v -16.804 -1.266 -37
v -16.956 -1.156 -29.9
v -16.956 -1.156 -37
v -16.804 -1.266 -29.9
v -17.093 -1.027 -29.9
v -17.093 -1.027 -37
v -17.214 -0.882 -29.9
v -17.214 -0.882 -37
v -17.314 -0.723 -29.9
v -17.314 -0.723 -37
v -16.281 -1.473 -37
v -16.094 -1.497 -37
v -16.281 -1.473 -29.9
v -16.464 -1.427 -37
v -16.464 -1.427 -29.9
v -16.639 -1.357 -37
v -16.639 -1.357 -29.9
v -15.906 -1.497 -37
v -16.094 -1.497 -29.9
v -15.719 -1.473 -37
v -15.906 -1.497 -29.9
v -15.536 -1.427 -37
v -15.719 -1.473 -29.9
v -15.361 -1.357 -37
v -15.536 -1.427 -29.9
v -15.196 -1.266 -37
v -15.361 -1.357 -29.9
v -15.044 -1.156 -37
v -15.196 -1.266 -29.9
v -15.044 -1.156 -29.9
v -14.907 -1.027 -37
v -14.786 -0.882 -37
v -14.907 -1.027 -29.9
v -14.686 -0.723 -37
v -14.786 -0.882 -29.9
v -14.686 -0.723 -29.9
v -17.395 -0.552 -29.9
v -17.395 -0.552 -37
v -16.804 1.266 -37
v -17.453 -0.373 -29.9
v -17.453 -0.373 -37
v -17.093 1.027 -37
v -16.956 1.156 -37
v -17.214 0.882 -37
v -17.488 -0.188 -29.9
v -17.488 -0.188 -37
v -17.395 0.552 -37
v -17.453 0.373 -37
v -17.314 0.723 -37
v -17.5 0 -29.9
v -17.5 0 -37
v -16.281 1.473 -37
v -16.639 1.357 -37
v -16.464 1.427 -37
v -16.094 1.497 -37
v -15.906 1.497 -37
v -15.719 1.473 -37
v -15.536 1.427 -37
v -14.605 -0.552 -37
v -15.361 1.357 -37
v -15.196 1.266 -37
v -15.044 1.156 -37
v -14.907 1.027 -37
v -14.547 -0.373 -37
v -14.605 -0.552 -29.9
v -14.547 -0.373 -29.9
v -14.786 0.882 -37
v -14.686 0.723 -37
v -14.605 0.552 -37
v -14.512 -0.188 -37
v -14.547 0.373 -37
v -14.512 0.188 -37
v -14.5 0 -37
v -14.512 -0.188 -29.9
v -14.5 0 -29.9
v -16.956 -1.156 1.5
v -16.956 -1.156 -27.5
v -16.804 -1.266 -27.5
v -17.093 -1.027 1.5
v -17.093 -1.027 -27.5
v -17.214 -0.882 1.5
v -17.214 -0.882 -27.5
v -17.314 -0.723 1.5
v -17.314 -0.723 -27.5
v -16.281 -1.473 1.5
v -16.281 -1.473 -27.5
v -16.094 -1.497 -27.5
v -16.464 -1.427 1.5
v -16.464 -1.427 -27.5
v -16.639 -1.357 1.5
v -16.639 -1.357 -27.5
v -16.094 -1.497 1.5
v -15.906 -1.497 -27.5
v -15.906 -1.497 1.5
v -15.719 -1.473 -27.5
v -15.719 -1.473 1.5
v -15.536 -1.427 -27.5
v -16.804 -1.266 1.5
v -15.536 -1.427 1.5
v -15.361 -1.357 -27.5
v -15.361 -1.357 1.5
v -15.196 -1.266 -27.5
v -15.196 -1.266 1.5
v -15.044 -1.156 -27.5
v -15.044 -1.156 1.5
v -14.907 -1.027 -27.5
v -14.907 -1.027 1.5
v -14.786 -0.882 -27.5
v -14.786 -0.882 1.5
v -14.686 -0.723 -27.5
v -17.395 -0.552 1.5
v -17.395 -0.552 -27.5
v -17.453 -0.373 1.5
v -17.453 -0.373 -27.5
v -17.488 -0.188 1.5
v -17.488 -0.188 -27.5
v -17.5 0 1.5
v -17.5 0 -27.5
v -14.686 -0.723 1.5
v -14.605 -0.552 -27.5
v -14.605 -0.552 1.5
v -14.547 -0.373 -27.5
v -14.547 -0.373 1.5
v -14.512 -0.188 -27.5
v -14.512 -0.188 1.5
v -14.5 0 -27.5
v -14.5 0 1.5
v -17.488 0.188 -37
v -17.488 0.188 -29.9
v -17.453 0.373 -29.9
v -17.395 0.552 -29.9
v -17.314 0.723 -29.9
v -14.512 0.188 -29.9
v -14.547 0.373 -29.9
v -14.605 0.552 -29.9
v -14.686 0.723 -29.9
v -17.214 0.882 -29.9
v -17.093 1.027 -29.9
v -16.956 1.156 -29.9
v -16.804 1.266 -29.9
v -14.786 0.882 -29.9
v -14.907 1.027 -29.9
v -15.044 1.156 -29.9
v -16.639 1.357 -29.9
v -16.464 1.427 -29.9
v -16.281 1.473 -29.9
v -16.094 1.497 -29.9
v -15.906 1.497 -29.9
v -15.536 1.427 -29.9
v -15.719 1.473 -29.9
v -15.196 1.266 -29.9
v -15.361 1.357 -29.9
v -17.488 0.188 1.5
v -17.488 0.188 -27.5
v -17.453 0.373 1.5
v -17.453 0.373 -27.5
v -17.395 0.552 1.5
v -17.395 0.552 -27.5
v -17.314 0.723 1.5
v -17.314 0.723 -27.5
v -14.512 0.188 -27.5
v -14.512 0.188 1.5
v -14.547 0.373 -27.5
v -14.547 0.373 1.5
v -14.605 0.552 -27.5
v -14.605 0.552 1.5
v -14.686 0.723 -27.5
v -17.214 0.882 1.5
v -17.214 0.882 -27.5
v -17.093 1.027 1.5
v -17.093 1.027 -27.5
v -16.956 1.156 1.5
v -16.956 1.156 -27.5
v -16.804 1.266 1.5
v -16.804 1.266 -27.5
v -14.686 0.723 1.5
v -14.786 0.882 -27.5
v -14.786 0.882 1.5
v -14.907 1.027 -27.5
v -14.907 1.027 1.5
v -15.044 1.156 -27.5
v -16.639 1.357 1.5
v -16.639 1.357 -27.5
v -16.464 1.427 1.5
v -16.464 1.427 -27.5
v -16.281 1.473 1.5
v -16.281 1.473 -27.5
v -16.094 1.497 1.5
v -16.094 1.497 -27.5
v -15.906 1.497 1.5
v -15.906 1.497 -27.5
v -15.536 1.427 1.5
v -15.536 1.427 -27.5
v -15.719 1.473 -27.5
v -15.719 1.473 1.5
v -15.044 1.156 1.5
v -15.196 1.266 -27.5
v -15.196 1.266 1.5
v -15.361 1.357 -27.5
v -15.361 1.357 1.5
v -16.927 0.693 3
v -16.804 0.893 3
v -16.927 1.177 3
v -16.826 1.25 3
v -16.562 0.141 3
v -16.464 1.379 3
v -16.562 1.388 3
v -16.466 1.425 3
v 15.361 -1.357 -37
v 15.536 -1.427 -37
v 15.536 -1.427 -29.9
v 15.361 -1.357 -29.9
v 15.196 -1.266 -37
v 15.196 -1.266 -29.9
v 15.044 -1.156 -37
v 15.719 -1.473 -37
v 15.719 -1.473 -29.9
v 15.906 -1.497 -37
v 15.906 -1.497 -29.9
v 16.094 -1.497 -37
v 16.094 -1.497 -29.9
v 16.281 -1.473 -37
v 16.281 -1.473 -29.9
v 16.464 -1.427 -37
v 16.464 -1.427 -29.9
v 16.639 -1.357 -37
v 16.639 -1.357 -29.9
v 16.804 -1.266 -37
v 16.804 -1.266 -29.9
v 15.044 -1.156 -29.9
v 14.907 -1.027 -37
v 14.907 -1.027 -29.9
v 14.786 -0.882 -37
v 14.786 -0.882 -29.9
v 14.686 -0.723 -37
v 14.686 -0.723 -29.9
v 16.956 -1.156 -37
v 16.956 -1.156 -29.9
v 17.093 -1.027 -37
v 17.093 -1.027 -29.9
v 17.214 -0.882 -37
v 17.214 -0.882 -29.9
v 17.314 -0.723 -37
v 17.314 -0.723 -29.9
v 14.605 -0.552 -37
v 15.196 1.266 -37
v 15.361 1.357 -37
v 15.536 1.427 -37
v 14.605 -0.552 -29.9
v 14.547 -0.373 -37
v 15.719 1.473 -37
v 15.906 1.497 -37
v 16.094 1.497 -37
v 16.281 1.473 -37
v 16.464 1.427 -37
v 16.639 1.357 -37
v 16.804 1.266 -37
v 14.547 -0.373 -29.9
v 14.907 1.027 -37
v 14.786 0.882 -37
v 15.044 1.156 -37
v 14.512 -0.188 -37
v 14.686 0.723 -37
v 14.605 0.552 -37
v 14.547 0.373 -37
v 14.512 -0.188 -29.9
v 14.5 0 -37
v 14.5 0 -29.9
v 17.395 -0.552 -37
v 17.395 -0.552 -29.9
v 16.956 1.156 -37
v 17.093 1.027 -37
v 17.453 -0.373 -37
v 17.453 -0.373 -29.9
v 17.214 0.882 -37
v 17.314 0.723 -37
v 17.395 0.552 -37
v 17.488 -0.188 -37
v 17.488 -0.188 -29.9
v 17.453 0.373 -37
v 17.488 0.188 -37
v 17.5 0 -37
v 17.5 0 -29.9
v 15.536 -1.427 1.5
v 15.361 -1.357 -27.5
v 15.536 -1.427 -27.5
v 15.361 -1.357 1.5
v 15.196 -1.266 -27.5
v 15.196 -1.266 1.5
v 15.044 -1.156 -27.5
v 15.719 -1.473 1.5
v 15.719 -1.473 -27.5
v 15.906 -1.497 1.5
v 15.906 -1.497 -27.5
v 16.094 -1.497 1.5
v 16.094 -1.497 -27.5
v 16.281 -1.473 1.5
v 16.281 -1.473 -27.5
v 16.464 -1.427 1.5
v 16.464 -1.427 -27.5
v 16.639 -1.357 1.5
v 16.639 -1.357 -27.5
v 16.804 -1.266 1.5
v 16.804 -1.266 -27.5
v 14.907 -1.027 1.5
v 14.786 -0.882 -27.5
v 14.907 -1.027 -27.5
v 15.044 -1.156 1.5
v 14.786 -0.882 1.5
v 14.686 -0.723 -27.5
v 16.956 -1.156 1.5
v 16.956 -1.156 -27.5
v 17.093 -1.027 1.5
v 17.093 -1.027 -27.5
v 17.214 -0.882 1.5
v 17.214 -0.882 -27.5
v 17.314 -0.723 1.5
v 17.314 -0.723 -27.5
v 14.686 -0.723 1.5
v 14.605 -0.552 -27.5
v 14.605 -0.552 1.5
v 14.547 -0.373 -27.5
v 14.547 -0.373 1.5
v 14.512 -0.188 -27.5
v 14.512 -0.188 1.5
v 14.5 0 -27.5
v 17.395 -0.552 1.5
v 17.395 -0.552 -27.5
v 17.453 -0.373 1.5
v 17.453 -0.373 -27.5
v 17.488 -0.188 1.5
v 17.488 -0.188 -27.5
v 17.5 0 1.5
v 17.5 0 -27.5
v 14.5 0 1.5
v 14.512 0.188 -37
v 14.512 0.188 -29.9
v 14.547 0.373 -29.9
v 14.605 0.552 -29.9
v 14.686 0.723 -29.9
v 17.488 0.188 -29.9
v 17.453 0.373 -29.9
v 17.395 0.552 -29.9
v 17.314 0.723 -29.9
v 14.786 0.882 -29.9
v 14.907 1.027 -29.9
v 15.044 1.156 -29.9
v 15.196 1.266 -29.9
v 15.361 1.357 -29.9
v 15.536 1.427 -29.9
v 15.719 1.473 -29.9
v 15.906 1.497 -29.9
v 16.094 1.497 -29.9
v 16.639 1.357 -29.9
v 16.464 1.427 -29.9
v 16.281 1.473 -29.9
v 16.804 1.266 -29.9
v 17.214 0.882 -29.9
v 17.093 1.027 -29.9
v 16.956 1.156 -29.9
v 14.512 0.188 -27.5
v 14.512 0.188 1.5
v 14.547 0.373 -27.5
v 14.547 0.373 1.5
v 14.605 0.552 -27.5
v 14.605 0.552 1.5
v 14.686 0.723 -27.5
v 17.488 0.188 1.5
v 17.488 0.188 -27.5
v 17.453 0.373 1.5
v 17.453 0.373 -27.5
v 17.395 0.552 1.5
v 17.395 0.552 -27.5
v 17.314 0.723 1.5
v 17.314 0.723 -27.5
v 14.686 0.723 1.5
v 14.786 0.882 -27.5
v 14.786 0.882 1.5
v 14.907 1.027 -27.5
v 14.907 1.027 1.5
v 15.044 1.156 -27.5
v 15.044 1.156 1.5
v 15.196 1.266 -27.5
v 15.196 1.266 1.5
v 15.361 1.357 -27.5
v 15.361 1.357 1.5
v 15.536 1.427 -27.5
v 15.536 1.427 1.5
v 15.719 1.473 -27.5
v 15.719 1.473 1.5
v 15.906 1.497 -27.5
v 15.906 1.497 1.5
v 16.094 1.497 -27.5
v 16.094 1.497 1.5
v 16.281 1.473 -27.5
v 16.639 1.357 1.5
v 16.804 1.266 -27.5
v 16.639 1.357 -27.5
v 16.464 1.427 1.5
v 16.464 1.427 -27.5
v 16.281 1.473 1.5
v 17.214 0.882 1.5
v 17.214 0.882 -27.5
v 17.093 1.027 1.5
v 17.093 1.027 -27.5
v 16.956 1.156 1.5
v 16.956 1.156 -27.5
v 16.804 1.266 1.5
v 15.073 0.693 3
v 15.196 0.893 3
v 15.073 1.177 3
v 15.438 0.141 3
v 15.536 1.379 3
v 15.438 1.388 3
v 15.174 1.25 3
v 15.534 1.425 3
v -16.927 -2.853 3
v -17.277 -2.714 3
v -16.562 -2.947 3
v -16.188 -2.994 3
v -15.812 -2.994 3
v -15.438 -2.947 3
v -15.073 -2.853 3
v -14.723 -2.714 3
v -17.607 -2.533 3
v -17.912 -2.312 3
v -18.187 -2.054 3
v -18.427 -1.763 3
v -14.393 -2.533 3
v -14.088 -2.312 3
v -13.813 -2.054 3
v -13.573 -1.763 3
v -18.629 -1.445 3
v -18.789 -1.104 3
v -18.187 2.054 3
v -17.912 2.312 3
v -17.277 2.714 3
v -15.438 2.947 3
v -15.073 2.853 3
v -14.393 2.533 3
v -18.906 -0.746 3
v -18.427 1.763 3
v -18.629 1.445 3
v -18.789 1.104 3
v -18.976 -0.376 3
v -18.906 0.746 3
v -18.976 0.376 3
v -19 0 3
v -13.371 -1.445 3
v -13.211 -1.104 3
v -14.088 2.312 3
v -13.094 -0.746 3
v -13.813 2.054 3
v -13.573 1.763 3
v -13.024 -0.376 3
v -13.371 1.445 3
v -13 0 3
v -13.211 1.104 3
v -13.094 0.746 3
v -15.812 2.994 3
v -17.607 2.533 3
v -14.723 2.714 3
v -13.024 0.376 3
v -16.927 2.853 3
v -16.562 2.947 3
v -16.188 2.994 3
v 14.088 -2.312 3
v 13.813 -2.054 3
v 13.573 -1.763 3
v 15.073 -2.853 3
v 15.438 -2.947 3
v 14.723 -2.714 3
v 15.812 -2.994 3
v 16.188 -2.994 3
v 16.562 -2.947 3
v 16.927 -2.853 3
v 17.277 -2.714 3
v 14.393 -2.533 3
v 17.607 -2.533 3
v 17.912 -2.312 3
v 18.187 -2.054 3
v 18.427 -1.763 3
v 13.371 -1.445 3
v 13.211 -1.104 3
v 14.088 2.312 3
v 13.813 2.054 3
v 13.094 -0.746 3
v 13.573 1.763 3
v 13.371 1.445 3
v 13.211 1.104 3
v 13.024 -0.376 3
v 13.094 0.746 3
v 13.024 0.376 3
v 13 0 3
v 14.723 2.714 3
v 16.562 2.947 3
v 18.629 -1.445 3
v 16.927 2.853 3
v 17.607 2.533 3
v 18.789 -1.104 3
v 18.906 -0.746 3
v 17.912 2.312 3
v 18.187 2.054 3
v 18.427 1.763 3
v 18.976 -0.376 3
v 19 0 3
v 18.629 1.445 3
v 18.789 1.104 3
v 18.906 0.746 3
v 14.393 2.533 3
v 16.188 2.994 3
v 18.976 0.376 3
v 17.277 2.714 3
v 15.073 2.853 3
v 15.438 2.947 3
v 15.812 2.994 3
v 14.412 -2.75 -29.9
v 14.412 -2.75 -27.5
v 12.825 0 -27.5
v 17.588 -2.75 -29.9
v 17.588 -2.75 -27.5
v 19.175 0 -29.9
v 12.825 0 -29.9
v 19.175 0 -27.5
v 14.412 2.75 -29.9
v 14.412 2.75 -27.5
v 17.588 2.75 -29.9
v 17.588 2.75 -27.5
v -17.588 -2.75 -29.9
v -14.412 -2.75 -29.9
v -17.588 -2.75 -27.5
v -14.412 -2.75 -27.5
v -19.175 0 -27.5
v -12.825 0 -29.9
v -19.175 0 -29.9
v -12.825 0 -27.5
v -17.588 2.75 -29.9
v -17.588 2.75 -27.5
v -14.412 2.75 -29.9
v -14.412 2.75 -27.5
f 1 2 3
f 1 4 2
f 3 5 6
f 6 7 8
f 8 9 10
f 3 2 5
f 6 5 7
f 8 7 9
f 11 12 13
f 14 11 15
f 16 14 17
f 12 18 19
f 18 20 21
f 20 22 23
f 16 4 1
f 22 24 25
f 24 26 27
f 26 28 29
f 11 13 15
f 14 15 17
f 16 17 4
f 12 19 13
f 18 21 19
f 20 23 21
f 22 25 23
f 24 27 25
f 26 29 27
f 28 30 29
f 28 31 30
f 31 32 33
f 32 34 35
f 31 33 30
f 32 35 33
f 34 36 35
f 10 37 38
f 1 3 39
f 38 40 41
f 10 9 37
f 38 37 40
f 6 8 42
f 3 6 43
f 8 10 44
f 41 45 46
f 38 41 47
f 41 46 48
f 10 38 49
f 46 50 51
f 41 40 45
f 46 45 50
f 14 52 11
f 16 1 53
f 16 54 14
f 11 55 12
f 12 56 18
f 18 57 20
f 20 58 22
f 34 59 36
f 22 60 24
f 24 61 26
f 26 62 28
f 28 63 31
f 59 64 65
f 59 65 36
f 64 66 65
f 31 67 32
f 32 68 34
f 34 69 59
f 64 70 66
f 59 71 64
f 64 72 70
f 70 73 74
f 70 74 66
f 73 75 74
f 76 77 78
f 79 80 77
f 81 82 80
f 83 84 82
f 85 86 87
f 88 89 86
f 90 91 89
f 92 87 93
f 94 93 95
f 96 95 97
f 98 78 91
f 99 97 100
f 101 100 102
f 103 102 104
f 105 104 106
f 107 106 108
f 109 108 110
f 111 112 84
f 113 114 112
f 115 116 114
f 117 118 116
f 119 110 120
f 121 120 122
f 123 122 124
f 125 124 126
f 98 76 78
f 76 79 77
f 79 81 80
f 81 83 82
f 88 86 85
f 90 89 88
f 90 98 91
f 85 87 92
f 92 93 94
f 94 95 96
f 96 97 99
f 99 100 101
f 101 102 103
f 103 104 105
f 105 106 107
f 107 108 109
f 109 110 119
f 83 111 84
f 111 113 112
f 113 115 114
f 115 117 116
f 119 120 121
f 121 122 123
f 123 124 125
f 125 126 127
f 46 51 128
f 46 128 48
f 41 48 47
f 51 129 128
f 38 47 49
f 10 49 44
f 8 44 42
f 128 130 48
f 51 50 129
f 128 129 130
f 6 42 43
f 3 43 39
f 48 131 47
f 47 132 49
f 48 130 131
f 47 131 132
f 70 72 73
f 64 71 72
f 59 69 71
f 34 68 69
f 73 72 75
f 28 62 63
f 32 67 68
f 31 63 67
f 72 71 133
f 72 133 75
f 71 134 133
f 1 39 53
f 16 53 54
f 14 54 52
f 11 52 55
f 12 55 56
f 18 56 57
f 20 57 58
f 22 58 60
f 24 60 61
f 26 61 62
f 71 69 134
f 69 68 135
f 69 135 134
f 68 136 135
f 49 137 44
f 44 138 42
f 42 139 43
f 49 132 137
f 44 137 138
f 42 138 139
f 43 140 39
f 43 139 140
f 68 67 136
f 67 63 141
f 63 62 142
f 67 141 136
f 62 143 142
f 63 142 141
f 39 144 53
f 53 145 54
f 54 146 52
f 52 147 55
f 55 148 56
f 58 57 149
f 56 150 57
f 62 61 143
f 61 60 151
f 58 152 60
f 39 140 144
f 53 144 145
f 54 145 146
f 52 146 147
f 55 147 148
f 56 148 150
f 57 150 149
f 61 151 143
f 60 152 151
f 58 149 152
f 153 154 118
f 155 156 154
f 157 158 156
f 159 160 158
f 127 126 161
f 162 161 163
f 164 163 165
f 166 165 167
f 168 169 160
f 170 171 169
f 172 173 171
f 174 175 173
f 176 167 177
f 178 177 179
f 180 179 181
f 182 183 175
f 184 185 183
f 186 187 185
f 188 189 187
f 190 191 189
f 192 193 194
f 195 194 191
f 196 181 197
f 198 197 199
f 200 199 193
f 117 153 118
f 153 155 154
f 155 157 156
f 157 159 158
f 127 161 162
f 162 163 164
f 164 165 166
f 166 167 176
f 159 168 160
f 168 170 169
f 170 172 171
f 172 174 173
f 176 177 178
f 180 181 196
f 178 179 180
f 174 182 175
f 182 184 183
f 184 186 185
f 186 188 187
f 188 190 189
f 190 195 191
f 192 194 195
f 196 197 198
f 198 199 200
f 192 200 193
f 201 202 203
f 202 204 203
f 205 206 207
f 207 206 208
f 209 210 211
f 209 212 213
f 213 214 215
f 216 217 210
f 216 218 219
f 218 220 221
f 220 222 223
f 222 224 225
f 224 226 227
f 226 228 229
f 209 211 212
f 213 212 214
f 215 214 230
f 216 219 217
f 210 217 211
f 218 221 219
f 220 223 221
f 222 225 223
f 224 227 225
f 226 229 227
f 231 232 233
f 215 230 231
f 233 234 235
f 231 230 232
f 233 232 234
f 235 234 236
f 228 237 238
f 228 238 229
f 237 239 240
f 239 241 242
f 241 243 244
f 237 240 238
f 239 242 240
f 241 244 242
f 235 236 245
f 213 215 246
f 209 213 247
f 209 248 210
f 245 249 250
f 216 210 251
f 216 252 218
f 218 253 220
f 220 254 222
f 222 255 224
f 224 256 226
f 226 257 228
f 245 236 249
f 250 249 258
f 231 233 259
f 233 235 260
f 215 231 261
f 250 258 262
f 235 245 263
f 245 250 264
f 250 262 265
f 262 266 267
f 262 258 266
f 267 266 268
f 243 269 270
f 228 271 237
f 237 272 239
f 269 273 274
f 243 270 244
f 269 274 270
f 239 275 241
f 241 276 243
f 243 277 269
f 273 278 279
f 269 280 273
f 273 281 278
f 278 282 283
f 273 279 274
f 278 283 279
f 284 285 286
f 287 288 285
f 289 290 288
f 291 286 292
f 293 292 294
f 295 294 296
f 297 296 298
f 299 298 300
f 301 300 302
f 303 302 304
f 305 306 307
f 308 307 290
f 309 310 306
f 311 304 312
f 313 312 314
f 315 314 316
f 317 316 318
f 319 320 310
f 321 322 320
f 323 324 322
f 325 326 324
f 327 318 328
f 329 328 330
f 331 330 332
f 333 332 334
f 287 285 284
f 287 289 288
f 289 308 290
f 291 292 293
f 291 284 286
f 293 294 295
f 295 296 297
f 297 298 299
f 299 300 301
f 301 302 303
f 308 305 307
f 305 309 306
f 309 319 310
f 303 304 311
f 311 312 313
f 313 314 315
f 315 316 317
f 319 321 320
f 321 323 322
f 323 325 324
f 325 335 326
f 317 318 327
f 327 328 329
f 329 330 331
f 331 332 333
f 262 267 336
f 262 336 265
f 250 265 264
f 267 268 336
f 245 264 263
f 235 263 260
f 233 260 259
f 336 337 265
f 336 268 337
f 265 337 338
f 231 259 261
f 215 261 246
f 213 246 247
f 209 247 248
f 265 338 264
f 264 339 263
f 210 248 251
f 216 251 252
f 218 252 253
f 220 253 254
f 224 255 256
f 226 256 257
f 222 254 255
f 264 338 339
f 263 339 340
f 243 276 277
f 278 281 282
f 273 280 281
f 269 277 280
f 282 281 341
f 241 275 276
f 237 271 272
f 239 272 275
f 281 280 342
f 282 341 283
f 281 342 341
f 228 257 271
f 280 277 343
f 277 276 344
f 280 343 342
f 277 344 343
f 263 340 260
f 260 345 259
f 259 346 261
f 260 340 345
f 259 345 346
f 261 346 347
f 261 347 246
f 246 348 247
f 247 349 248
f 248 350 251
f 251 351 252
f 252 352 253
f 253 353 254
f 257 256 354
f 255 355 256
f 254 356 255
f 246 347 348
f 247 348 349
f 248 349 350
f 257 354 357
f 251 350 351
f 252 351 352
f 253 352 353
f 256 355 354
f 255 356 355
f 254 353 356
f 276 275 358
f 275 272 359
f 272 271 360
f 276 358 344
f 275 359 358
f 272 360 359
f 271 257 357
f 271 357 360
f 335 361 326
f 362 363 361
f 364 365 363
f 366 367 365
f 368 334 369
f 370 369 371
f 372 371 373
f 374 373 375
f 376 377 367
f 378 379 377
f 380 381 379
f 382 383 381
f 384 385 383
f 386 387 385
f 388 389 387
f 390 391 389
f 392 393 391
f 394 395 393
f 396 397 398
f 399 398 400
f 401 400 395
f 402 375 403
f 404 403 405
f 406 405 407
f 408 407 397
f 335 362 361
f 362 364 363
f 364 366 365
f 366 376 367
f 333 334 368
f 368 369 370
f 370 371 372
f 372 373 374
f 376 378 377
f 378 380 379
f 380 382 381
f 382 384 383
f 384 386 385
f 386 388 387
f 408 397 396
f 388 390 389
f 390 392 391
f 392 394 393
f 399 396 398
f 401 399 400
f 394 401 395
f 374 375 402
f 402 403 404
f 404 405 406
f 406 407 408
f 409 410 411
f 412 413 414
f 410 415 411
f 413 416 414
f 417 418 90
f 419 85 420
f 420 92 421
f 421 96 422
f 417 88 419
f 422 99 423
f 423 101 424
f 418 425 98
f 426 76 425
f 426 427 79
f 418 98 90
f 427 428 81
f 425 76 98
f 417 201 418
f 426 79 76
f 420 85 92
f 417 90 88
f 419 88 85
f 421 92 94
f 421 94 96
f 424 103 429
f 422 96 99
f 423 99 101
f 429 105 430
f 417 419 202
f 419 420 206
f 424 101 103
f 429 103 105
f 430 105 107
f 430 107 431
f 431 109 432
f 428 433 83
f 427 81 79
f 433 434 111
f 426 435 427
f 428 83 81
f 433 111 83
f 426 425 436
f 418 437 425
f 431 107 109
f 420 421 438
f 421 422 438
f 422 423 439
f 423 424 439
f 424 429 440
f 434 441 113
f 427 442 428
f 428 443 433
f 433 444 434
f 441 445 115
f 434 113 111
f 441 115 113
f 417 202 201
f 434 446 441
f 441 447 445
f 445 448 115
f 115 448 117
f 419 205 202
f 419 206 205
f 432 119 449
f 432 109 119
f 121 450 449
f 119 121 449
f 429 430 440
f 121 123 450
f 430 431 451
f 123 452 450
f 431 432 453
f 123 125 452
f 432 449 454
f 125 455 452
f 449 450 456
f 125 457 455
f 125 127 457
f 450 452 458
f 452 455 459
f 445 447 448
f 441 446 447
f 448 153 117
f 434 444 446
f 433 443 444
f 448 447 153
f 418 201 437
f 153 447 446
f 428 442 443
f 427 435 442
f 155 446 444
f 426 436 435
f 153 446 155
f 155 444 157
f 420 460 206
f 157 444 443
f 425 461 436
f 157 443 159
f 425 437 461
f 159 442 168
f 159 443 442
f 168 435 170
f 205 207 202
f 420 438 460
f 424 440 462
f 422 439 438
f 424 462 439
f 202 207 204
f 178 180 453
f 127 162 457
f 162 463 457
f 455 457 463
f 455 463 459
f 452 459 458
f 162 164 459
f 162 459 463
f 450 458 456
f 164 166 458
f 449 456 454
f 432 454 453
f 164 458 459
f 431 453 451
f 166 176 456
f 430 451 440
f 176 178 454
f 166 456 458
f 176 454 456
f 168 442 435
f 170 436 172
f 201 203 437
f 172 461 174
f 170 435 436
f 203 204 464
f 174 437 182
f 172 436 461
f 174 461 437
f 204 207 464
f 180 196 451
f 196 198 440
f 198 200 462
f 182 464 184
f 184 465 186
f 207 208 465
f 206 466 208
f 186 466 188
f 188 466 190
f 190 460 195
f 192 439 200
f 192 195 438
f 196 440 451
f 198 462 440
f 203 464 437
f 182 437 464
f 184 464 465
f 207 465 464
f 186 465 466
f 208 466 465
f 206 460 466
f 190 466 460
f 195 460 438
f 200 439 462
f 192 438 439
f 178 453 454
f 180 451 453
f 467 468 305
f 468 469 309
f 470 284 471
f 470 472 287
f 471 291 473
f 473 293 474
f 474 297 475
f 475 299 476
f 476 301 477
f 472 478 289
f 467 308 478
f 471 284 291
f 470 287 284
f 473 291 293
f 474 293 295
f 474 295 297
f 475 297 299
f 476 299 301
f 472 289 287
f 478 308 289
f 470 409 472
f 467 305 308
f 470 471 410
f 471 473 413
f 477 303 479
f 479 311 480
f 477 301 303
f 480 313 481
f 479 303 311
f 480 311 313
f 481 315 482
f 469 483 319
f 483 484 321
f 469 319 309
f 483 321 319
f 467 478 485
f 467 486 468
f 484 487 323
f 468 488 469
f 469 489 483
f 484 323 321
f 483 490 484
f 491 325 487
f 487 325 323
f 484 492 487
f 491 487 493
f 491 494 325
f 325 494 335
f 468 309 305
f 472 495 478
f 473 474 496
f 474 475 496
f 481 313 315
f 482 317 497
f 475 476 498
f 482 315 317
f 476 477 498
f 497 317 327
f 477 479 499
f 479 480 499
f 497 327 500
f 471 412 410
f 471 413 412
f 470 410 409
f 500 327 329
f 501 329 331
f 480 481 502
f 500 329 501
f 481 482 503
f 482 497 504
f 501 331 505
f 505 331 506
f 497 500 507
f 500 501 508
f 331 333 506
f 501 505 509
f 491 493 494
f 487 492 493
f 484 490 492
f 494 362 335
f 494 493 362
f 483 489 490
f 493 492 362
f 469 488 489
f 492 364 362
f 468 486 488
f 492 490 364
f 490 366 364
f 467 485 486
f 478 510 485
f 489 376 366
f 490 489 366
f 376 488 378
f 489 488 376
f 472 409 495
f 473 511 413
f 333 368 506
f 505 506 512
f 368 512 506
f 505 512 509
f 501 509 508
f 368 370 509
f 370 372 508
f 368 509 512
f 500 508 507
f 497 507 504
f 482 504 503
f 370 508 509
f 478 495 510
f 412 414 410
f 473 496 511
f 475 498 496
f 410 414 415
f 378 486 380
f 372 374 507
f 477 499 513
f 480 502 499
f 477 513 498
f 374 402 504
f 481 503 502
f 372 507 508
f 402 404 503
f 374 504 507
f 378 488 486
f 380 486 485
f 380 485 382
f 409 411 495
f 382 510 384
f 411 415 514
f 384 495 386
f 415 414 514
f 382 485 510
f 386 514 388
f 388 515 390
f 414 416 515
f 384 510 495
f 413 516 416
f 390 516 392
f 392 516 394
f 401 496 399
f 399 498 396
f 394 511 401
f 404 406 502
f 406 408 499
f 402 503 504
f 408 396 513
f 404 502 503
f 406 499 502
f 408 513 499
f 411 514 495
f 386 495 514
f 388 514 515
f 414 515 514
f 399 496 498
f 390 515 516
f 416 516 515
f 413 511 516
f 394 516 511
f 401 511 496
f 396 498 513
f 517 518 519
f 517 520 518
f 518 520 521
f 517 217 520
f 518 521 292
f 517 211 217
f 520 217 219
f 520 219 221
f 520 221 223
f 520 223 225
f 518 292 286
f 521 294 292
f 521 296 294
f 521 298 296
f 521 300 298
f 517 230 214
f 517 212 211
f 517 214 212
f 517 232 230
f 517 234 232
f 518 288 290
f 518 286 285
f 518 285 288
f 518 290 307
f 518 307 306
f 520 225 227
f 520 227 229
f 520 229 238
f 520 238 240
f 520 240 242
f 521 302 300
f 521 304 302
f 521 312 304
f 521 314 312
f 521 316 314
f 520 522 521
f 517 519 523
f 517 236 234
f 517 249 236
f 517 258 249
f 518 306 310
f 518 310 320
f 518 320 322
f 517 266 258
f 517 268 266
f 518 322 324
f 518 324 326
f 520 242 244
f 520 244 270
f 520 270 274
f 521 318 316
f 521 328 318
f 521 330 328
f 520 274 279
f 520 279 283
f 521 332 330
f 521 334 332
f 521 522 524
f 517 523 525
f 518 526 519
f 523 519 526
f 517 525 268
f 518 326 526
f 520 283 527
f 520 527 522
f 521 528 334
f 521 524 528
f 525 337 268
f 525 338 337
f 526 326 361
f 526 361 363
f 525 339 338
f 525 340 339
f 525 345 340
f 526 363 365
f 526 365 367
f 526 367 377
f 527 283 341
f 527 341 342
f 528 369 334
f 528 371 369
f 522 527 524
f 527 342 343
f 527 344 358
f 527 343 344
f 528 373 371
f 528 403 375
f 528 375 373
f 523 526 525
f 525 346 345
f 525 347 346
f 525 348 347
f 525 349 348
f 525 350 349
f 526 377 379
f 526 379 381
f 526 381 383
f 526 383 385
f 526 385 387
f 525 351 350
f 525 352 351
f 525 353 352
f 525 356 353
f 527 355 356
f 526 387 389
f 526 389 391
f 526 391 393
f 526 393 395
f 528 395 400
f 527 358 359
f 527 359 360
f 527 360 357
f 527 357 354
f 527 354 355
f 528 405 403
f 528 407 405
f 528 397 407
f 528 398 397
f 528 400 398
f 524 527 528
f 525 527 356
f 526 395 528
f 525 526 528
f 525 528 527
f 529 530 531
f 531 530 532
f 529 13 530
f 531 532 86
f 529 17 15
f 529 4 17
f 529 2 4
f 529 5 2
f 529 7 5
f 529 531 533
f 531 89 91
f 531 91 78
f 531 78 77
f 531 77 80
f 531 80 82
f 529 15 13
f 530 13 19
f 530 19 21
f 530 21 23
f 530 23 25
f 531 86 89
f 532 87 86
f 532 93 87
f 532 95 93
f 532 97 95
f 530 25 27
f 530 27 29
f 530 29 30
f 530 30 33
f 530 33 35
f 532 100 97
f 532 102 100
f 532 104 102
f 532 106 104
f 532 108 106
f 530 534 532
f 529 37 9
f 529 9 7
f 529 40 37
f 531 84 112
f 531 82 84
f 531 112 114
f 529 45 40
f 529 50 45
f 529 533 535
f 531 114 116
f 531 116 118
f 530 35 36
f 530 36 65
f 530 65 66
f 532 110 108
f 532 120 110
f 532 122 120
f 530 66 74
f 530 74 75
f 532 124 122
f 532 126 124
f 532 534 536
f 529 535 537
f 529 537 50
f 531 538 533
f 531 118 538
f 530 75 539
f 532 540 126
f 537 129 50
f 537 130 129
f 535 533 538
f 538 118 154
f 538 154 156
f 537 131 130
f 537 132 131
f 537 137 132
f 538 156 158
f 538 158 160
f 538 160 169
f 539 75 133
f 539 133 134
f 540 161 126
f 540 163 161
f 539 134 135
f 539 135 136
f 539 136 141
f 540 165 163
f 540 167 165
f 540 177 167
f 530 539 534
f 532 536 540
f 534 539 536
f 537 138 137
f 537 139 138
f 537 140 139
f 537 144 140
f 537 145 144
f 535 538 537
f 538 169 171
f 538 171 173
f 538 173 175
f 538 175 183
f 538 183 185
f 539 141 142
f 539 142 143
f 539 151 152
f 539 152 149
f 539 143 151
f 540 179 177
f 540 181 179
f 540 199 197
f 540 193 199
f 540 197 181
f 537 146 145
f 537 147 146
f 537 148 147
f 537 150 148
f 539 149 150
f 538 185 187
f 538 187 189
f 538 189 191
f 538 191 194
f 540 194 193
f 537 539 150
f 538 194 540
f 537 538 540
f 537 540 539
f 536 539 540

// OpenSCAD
$fn = 50;

difference() {
	union() {
		translate(v = [-16, 0, 3]) {
			rotate(a = [0, 0, 0]) {
				difference() {
					union() {
						translate(v = [0, 0, -40.0]) {
							cylinder(h = 40, r = 1.5);
						}
						translate(v = [0, 0, -1.5]) {
							cylinder(h = 1.5, r1 = 1.5, r2 = 3);
						}
					}
					union();
				}
			}
		}
		translate(v = [-16, 0, -29.900000000000002]) {
			rotate(a = [0, 0, 0]) {
				difference() {
					union() {
						linear_extrude(height = 2.4) {
							polygon(points = [[3.1754264805429417, 0.0], [1.5877132402714713, 2.75], [-1.5877132402714702, 2.7500000000000004], [-3.1754264805429417, 3.888775875324659e-16], [-1.5877132402714722, -2.7499999999999996], [1.5877132402714687, -2.7500000000000013]]);
						}
					}
					union();
				}
			}
		}
		translate(v = [16, 0, 3]) {
			rotate(a = [0, 0, 0]) {
				difference() {
					union() {
						translate(v = [0, 0, -40.0]) {
							cylinder(h = 40, r = 1.5);
						}
						translate(v = [0, 0, -1.5]) {
							cylinder(h = 1.5, r1 = 1.5, r2 = 3);
						}
					}
					union();
				}
			}
		}
		translate(v = [16, 0, -29.900000000000002]) {
			rotate(a = [0, 0, 0]) {
				difference() {
					union() {
						linear_extrude(height = 2.4) {
							polygon(points = [[3.1754264805429417, 0.0], [1.5877132402714713, 2.75], [-1.5877132402714702, 2.7500000000000004], [-3.1754264805429417, 3.888775875324659e-16], [-1.5877132402714722, -2.7499999999999996], [1.5877132402714687, -2.7500000000000013]]);
						}
					}
					union();
				}
			}
		}
	}
	union();
}
